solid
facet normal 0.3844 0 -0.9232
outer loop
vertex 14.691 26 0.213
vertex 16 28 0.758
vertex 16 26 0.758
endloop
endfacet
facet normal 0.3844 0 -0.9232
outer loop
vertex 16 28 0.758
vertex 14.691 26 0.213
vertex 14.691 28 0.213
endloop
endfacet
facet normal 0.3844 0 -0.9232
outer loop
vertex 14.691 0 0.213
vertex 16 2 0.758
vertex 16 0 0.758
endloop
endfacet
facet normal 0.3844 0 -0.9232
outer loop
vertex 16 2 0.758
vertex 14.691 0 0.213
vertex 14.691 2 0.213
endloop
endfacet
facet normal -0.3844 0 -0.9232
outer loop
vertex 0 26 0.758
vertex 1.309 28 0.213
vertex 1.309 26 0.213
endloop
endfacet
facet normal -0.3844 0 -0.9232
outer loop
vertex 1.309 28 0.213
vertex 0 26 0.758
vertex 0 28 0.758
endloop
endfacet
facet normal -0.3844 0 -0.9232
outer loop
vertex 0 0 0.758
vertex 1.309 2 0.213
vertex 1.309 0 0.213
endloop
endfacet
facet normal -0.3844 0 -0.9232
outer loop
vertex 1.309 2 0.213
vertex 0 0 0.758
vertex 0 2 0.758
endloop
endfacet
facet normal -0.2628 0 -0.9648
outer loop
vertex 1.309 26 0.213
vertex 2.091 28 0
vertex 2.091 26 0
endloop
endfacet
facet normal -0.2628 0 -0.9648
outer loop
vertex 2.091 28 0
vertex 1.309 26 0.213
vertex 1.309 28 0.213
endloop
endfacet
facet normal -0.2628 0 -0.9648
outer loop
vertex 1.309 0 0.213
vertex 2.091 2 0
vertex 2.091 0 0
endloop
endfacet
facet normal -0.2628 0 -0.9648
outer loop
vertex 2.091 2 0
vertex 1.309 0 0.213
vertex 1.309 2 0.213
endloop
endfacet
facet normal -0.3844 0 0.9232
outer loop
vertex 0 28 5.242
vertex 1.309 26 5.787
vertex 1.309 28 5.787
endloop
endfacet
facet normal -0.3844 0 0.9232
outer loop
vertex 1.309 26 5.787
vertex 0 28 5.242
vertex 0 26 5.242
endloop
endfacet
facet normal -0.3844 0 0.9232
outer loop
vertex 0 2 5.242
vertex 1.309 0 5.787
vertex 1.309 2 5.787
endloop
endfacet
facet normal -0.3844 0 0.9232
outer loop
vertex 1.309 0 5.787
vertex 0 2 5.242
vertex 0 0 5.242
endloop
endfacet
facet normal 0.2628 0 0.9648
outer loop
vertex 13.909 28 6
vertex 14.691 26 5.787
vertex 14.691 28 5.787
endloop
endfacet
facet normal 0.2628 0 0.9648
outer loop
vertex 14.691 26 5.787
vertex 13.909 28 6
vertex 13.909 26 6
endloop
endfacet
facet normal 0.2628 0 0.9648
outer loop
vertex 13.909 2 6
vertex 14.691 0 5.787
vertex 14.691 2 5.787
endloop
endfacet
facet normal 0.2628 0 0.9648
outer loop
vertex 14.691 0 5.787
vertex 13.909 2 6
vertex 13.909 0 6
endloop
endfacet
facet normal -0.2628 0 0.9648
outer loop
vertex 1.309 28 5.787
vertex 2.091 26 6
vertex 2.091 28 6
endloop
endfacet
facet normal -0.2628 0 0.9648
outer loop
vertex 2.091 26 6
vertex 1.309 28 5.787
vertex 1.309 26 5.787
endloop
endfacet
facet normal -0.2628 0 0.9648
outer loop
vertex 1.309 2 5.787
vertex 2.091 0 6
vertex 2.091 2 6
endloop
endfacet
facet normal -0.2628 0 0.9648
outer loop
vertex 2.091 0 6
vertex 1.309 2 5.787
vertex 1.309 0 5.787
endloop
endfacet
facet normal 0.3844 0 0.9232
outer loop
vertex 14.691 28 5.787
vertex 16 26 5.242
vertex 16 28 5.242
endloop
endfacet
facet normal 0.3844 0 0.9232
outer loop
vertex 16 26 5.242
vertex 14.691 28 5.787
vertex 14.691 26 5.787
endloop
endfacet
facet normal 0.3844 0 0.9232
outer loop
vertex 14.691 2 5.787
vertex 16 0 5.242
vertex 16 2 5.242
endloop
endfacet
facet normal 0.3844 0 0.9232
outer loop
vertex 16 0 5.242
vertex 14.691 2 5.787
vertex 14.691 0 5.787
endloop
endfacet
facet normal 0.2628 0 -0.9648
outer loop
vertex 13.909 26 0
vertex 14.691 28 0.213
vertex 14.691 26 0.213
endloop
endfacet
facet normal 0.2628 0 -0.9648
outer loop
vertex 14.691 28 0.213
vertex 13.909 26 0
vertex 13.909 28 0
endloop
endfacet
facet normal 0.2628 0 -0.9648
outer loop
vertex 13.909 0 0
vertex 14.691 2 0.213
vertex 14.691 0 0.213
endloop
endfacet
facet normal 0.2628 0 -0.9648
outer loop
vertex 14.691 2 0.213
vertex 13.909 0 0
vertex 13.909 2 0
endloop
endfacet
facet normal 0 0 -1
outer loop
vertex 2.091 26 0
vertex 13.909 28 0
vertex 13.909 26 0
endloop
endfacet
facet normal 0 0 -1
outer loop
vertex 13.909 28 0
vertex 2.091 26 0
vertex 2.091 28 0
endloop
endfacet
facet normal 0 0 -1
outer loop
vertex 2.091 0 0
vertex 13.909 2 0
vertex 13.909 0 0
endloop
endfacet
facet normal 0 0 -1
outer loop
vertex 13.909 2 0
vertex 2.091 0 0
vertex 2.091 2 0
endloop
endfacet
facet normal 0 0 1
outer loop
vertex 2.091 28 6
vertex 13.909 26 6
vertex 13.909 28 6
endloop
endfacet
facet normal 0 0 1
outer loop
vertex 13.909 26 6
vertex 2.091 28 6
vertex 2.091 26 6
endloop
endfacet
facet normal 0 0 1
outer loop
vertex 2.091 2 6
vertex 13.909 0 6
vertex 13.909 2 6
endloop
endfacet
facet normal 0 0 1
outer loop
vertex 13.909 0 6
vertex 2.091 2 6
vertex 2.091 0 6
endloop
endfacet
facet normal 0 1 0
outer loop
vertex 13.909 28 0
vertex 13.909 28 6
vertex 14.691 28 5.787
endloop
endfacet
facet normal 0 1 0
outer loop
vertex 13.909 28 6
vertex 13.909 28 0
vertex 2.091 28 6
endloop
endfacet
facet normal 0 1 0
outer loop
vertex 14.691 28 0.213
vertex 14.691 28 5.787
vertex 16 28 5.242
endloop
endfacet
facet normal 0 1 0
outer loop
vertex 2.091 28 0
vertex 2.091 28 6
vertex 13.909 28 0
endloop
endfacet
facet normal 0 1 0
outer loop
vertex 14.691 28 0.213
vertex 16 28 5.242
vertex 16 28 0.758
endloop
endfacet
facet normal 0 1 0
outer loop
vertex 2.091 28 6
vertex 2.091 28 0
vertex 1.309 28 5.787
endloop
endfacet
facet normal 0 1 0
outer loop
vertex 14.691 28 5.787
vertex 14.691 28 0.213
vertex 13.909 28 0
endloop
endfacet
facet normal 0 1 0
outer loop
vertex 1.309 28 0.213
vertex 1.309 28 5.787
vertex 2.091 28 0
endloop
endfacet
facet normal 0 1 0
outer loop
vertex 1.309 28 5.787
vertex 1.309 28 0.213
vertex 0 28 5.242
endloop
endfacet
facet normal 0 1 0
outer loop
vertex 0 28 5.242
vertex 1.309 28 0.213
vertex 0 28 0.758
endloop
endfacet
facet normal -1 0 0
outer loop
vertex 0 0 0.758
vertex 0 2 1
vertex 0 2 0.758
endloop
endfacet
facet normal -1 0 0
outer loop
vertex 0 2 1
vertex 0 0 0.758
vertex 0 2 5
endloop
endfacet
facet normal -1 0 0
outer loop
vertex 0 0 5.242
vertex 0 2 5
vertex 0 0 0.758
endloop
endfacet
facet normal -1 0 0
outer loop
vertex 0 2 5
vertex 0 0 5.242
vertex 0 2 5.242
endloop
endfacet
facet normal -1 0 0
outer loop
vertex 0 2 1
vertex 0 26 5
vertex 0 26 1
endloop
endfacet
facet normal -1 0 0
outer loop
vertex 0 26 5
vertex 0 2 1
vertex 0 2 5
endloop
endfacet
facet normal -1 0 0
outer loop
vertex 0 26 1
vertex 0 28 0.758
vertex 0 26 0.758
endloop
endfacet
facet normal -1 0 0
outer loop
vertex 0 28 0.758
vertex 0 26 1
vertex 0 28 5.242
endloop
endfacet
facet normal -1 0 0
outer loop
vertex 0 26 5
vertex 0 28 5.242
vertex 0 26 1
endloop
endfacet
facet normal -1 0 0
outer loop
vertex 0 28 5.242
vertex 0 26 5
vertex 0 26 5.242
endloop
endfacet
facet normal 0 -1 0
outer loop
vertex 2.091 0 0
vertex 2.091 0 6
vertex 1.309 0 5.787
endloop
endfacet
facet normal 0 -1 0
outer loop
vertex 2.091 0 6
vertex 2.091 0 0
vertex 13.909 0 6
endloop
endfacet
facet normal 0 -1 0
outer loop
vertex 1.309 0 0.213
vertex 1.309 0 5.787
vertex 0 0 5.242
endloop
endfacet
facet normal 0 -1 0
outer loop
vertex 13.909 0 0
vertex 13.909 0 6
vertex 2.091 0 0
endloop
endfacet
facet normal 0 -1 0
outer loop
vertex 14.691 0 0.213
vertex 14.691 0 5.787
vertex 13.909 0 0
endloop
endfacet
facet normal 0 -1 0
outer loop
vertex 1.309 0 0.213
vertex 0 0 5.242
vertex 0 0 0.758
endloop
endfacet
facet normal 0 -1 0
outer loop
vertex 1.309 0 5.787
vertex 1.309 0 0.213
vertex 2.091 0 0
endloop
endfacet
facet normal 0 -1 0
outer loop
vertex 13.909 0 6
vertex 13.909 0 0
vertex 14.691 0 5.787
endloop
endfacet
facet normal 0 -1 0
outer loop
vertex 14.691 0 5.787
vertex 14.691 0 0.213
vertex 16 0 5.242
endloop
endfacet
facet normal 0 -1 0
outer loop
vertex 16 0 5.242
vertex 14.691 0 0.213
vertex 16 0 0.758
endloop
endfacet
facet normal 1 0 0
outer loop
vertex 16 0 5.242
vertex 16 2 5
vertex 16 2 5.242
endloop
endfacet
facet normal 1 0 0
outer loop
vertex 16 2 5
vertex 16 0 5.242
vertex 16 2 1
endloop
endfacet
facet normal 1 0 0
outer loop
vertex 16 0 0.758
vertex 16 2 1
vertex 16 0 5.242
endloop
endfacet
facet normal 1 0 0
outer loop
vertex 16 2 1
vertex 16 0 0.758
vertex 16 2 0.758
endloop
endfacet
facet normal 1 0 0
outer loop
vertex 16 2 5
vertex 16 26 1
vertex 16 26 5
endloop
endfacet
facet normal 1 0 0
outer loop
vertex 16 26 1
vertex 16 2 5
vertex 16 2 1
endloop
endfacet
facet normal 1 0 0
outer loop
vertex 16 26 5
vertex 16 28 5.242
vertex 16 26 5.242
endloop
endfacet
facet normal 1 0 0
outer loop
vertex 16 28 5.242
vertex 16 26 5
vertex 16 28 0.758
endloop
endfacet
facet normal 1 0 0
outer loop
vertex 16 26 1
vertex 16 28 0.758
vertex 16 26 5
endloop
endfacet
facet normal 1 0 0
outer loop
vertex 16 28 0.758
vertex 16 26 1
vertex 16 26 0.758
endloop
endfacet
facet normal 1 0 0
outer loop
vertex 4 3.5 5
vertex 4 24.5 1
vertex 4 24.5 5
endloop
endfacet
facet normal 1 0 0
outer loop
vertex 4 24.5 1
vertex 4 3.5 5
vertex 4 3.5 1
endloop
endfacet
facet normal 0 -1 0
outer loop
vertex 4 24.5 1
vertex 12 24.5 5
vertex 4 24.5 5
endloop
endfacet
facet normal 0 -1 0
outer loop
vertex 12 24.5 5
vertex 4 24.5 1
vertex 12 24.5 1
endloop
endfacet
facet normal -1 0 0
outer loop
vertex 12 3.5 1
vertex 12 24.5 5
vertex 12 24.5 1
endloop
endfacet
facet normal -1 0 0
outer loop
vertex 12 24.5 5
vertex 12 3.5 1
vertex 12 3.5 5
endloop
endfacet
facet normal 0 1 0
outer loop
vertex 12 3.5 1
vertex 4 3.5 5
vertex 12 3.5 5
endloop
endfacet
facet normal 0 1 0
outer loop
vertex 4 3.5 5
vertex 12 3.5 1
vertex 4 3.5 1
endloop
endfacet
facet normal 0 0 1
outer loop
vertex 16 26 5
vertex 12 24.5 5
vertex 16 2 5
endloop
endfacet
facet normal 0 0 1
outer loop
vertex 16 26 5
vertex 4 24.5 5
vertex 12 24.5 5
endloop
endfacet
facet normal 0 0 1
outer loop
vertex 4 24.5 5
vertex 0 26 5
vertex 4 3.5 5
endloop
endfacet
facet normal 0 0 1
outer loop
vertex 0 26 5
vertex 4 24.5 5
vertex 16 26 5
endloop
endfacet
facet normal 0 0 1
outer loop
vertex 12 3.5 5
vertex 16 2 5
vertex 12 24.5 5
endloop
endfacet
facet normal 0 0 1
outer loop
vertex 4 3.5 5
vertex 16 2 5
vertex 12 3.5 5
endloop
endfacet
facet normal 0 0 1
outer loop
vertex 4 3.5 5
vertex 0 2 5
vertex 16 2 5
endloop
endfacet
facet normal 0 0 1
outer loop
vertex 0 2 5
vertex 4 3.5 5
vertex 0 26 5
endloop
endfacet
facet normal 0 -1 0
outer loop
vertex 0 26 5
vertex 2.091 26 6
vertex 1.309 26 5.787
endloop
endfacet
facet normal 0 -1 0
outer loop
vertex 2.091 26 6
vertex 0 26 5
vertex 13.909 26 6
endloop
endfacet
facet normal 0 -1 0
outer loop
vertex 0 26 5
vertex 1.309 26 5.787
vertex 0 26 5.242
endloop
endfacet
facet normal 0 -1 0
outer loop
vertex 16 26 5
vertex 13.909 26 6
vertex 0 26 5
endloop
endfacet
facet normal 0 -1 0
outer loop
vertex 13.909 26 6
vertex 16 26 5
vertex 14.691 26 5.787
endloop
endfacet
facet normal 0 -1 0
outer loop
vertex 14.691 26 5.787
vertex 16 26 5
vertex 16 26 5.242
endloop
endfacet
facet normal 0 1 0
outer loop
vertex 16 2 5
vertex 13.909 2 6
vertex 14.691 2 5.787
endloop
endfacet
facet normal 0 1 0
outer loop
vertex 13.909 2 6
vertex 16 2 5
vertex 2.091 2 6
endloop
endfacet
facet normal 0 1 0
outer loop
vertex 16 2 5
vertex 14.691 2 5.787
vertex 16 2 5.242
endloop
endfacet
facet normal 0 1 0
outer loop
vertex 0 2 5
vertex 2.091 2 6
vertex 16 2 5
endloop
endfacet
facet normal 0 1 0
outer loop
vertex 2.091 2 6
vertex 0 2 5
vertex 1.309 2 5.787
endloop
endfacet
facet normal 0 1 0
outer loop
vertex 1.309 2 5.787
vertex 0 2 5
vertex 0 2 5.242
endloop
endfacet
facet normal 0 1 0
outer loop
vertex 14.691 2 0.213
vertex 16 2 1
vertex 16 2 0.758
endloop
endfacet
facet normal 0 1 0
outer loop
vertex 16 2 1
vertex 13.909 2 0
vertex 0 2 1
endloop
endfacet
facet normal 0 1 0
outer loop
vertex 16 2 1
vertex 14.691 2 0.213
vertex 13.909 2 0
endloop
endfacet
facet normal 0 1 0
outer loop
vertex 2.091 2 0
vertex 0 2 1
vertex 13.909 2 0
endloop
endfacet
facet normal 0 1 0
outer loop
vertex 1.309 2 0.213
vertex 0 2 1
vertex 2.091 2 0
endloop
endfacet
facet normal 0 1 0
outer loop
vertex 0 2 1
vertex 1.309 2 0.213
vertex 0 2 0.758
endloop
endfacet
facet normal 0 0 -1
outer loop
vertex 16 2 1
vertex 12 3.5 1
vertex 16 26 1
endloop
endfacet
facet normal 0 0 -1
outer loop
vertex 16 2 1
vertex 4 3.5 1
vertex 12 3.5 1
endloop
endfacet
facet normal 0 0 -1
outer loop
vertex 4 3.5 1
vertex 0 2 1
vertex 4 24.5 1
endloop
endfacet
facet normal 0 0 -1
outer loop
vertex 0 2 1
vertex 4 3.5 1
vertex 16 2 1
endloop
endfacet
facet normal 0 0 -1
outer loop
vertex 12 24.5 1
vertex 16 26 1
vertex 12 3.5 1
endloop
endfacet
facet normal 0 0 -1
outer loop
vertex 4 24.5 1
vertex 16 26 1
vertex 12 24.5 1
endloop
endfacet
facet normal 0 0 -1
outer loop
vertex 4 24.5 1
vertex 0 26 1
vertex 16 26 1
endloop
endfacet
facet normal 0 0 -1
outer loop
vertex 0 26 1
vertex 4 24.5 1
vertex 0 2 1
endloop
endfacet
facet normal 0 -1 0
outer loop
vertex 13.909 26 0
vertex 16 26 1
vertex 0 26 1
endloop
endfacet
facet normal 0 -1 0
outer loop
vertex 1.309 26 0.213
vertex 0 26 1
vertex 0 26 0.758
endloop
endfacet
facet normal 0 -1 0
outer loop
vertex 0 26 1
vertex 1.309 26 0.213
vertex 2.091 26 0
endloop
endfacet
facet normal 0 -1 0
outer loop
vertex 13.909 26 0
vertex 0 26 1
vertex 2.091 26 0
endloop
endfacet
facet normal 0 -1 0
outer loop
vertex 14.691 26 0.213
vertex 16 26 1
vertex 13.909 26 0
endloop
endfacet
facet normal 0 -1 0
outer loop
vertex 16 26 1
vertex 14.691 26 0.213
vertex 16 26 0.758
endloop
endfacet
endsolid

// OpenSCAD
difference(){    

    intersection(){
        translate([8,29,3])
            rotate([90,0,0])
            linear_extrude(30){
                scale([1,6/16])
                    circle(10);     
            };
        linear_extrude(6){
            difference(){
                polygon([[0,0],[0,28],[16,28],[16,0]]);
                polygon([[4,3.5],[4,24.5],[12,24.5],[12,3.5]]);
            }
        };  
    }


    translate([0,0,5])
    linear_extrude(2){
                polygon([[0,2],[0,26],[16,26],[16,2]]);

    };  

    translate([0,0,-1])
     linear_extrude(2){
                polygon([[0,2],[0,26],[16,26],[16,2]]);

    };  
}
